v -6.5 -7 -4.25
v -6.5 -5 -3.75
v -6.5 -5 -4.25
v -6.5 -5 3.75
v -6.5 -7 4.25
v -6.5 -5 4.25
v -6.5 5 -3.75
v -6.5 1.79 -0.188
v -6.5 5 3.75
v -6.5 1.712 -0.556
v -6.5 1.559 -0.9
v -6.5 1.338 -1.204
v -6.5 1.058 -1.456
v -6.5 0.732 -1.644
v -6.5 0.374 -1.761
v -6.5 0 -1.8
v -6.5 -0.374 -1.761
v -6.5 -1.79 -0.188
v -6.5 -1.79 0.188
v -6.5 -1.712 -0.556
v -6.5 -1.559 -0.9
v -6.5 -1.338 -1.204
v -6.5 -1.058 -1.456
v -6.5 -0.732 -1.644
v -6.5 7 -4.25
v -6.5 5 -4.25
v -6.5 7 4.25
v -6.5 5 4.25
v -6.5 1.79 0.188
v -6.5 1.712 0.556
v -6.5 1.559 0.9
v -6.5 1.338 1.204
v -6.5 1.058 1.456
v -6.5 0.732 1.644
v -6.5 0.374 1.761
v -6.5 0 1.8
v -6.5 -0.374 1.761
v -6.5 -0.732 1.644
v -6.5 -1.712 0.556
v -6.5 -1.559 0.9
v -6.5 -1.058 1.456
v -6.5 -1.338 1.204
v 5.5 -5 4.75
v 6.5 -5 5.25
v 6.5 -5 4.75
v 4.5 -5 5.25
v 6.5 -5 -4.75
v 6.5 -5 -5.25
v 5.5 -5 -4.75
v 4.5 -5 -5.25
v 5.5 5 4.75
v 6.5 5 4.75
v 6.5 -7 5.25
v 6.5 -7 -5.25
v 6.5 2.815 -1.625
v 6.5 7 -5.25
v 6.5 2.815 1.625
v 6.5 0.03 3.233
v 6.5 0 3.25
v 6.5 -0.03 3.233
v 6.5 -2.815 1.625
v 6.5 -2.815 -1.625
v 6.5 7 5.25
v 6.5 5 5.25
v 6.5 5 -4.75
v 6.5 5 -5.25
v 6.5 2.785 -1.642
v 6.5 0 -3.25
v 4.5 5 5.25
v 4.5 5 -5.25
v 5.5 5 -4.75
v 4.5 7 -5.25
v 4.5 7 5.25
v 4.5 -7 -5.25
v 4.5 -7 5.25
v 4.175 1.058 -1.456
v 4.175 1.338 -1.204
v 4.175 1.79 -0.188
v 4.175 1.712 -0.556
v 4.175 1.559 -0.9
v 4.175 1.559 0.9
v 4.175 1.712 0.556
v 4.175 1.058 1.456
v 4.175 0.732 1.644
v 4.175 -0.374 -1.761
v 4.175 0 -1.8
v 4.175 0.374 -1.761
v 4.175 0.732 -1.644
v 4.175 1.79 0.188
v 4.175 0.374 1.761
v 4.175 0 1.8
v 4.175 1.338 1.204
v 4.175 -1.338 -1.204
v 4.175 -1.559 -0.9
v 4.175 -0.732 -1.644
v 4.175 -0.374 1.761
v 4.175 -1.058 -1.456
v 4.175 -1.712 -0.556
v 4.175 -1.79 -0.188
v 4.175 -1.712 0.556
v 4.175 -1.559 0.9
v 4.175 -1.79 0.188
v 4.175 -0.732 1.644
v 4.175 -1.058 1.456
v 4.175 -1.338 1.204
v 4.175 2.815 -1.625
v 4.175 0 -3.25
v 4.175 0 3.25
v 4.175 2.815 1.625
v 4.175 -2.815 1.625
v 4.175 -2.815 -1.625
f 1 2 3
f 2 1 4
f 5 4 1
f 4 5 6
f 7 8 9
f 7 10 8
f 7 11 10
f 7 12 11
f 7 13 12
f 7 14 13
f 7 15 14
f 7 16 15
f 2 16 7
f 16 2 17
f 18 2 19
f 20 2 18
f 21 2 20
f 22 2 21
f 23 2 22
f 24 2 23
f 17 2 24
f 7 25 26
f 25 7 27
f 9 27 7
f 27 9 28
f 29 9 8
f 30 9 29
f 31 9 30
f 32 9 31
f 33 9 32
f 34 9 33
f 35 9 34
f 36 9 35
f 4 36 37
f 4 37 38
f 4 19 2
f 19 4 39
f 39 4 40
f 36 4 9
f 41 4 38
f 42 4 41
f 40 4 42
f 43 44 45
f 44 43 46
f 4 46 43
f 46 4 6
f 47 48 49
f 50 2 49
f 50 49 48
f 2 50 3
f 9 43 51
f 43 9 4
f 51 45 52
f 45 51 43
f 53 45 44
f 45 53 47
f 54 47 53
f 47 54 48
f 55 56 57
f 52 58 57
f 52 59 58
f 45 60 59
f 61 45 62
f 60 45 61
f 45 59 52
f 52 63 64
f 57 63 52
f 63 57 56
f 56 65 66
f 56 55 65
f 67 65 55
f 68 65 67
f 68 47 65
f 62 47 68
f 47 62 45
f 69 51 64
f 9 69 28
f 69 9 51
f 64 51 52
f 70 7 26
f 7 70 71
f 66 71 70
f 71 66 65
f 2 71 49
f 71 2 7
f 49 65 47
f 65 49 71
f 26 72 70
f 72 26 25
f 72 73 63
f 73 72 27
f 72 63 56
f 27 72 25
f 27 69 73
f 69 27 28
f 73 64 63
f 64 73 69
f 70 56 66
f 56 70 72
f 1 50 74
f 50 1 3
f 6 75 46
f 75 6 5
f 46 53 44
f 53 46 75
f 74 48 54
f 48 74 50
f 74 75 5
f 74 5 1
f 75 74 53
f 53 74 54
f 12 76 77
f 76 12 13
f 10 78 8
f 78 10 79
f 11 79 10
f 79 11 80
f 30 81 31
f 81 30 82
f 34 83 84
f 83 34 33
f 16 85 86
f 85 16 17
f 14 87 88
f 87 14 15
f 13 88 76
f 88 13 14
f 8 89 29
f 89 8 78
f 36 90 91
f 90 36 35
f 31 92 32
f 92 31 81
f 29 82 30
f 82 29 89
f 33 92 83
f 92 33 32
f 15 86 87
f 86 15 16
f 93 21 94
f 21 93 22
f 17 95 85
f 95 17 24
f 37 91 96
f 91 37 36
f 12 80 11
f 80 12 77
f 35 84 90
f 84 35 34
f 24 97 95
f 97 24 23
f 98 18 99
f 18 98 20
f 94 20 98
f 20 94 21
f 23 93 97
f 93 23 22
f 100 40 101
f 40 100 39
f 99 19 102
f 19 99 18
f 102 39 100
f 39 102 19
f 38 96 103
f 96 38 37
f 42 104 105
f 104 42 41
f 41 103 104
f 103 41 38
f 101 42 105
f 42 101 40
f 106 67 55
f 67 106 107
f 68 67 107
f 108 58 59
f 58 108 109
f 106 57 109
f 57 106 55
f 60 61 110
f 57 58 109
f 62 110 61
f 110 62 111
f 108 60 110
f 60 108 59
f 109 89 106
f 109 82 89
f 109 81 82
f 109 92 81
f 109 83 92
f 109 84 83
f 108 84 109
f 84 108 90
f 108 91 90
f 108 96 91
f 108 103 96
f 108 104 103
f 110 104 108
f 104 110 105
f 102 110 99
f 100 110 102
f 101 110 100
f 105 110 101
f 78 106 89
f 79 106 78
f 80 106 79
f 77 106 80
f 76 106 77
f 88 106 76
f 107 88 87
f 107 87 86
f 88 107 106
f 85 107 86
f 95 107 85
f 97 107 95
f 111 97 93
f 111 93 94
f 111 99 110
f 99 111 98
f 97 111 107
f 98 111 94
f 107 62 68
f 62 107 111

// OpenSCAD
length = 13;
width = 10;
long_side = 10;
short_side = 8;
side_width = 2;
side_height = .5;

m3_hole = 2.9+0.7;
m3_nut = 6+0.5;
m3_nut_height = 2.3;

module side(extra = 0) {
    l = length / 2 - side_width/2;
    ss = (short_side + extra + side_height) / 2;
    ls = (long_side + extra + side_height) / 2;
    module side_cube () cube([side_width, side_width, side_height], center=true);
    hull() {
        translate([-l,0,-ss]) side_cube();
        translate([-l,0,ss]) side_cube();
        translate([l,0,ls]) side_cube();
        translate([l,0,-ls]) side_cube();
    }
}

module wedge (extra = 0) {
    l = length / 2 - 0.5;
    w = width / 2 - 0.5;
    ss = (short_side + extra) / 2 - 0.5;
    ls = (long_side + extra) / 2 - 0.5;
    hull() {
        // short side
        translate([-l,-w,-ss]) cube(1, center=true);
        translate([-l,w,-ss]) cube(1, center=true);
        translate([-l,-w,ss]) cube(1, center=true);
        translate([-l,w,ss]) cube(1, center=true);
        // long side
        translate([l,-w,-ls]) cube(1, center=true);
        translate([l,w,-ls]) cube(1, center=true);
        translate([l,-w,ls]) cube(1, center=true);
        translate([l,w,ls]) cube(1, center=true);
    }
    translate([0,w+0.5+side_width/2,0]) side(extra);
    translate([0,-w-0.5-side_width/2,0]) side(extra);
}

module part (extra = 0) {
    difference() {
        wedge(extra);
        rotate([0,90,0]) cylinder(d=m3_hole, h=length+0.01, center=true, $fn=30);
        translate([length/2-m3_nut_height/2,0,0]) rotate([0,90,0]) cylinder(d=m3_nut, h=m3_nut_height+0.05, center=true, $fn=6);
    }
}

part(-0.5);
